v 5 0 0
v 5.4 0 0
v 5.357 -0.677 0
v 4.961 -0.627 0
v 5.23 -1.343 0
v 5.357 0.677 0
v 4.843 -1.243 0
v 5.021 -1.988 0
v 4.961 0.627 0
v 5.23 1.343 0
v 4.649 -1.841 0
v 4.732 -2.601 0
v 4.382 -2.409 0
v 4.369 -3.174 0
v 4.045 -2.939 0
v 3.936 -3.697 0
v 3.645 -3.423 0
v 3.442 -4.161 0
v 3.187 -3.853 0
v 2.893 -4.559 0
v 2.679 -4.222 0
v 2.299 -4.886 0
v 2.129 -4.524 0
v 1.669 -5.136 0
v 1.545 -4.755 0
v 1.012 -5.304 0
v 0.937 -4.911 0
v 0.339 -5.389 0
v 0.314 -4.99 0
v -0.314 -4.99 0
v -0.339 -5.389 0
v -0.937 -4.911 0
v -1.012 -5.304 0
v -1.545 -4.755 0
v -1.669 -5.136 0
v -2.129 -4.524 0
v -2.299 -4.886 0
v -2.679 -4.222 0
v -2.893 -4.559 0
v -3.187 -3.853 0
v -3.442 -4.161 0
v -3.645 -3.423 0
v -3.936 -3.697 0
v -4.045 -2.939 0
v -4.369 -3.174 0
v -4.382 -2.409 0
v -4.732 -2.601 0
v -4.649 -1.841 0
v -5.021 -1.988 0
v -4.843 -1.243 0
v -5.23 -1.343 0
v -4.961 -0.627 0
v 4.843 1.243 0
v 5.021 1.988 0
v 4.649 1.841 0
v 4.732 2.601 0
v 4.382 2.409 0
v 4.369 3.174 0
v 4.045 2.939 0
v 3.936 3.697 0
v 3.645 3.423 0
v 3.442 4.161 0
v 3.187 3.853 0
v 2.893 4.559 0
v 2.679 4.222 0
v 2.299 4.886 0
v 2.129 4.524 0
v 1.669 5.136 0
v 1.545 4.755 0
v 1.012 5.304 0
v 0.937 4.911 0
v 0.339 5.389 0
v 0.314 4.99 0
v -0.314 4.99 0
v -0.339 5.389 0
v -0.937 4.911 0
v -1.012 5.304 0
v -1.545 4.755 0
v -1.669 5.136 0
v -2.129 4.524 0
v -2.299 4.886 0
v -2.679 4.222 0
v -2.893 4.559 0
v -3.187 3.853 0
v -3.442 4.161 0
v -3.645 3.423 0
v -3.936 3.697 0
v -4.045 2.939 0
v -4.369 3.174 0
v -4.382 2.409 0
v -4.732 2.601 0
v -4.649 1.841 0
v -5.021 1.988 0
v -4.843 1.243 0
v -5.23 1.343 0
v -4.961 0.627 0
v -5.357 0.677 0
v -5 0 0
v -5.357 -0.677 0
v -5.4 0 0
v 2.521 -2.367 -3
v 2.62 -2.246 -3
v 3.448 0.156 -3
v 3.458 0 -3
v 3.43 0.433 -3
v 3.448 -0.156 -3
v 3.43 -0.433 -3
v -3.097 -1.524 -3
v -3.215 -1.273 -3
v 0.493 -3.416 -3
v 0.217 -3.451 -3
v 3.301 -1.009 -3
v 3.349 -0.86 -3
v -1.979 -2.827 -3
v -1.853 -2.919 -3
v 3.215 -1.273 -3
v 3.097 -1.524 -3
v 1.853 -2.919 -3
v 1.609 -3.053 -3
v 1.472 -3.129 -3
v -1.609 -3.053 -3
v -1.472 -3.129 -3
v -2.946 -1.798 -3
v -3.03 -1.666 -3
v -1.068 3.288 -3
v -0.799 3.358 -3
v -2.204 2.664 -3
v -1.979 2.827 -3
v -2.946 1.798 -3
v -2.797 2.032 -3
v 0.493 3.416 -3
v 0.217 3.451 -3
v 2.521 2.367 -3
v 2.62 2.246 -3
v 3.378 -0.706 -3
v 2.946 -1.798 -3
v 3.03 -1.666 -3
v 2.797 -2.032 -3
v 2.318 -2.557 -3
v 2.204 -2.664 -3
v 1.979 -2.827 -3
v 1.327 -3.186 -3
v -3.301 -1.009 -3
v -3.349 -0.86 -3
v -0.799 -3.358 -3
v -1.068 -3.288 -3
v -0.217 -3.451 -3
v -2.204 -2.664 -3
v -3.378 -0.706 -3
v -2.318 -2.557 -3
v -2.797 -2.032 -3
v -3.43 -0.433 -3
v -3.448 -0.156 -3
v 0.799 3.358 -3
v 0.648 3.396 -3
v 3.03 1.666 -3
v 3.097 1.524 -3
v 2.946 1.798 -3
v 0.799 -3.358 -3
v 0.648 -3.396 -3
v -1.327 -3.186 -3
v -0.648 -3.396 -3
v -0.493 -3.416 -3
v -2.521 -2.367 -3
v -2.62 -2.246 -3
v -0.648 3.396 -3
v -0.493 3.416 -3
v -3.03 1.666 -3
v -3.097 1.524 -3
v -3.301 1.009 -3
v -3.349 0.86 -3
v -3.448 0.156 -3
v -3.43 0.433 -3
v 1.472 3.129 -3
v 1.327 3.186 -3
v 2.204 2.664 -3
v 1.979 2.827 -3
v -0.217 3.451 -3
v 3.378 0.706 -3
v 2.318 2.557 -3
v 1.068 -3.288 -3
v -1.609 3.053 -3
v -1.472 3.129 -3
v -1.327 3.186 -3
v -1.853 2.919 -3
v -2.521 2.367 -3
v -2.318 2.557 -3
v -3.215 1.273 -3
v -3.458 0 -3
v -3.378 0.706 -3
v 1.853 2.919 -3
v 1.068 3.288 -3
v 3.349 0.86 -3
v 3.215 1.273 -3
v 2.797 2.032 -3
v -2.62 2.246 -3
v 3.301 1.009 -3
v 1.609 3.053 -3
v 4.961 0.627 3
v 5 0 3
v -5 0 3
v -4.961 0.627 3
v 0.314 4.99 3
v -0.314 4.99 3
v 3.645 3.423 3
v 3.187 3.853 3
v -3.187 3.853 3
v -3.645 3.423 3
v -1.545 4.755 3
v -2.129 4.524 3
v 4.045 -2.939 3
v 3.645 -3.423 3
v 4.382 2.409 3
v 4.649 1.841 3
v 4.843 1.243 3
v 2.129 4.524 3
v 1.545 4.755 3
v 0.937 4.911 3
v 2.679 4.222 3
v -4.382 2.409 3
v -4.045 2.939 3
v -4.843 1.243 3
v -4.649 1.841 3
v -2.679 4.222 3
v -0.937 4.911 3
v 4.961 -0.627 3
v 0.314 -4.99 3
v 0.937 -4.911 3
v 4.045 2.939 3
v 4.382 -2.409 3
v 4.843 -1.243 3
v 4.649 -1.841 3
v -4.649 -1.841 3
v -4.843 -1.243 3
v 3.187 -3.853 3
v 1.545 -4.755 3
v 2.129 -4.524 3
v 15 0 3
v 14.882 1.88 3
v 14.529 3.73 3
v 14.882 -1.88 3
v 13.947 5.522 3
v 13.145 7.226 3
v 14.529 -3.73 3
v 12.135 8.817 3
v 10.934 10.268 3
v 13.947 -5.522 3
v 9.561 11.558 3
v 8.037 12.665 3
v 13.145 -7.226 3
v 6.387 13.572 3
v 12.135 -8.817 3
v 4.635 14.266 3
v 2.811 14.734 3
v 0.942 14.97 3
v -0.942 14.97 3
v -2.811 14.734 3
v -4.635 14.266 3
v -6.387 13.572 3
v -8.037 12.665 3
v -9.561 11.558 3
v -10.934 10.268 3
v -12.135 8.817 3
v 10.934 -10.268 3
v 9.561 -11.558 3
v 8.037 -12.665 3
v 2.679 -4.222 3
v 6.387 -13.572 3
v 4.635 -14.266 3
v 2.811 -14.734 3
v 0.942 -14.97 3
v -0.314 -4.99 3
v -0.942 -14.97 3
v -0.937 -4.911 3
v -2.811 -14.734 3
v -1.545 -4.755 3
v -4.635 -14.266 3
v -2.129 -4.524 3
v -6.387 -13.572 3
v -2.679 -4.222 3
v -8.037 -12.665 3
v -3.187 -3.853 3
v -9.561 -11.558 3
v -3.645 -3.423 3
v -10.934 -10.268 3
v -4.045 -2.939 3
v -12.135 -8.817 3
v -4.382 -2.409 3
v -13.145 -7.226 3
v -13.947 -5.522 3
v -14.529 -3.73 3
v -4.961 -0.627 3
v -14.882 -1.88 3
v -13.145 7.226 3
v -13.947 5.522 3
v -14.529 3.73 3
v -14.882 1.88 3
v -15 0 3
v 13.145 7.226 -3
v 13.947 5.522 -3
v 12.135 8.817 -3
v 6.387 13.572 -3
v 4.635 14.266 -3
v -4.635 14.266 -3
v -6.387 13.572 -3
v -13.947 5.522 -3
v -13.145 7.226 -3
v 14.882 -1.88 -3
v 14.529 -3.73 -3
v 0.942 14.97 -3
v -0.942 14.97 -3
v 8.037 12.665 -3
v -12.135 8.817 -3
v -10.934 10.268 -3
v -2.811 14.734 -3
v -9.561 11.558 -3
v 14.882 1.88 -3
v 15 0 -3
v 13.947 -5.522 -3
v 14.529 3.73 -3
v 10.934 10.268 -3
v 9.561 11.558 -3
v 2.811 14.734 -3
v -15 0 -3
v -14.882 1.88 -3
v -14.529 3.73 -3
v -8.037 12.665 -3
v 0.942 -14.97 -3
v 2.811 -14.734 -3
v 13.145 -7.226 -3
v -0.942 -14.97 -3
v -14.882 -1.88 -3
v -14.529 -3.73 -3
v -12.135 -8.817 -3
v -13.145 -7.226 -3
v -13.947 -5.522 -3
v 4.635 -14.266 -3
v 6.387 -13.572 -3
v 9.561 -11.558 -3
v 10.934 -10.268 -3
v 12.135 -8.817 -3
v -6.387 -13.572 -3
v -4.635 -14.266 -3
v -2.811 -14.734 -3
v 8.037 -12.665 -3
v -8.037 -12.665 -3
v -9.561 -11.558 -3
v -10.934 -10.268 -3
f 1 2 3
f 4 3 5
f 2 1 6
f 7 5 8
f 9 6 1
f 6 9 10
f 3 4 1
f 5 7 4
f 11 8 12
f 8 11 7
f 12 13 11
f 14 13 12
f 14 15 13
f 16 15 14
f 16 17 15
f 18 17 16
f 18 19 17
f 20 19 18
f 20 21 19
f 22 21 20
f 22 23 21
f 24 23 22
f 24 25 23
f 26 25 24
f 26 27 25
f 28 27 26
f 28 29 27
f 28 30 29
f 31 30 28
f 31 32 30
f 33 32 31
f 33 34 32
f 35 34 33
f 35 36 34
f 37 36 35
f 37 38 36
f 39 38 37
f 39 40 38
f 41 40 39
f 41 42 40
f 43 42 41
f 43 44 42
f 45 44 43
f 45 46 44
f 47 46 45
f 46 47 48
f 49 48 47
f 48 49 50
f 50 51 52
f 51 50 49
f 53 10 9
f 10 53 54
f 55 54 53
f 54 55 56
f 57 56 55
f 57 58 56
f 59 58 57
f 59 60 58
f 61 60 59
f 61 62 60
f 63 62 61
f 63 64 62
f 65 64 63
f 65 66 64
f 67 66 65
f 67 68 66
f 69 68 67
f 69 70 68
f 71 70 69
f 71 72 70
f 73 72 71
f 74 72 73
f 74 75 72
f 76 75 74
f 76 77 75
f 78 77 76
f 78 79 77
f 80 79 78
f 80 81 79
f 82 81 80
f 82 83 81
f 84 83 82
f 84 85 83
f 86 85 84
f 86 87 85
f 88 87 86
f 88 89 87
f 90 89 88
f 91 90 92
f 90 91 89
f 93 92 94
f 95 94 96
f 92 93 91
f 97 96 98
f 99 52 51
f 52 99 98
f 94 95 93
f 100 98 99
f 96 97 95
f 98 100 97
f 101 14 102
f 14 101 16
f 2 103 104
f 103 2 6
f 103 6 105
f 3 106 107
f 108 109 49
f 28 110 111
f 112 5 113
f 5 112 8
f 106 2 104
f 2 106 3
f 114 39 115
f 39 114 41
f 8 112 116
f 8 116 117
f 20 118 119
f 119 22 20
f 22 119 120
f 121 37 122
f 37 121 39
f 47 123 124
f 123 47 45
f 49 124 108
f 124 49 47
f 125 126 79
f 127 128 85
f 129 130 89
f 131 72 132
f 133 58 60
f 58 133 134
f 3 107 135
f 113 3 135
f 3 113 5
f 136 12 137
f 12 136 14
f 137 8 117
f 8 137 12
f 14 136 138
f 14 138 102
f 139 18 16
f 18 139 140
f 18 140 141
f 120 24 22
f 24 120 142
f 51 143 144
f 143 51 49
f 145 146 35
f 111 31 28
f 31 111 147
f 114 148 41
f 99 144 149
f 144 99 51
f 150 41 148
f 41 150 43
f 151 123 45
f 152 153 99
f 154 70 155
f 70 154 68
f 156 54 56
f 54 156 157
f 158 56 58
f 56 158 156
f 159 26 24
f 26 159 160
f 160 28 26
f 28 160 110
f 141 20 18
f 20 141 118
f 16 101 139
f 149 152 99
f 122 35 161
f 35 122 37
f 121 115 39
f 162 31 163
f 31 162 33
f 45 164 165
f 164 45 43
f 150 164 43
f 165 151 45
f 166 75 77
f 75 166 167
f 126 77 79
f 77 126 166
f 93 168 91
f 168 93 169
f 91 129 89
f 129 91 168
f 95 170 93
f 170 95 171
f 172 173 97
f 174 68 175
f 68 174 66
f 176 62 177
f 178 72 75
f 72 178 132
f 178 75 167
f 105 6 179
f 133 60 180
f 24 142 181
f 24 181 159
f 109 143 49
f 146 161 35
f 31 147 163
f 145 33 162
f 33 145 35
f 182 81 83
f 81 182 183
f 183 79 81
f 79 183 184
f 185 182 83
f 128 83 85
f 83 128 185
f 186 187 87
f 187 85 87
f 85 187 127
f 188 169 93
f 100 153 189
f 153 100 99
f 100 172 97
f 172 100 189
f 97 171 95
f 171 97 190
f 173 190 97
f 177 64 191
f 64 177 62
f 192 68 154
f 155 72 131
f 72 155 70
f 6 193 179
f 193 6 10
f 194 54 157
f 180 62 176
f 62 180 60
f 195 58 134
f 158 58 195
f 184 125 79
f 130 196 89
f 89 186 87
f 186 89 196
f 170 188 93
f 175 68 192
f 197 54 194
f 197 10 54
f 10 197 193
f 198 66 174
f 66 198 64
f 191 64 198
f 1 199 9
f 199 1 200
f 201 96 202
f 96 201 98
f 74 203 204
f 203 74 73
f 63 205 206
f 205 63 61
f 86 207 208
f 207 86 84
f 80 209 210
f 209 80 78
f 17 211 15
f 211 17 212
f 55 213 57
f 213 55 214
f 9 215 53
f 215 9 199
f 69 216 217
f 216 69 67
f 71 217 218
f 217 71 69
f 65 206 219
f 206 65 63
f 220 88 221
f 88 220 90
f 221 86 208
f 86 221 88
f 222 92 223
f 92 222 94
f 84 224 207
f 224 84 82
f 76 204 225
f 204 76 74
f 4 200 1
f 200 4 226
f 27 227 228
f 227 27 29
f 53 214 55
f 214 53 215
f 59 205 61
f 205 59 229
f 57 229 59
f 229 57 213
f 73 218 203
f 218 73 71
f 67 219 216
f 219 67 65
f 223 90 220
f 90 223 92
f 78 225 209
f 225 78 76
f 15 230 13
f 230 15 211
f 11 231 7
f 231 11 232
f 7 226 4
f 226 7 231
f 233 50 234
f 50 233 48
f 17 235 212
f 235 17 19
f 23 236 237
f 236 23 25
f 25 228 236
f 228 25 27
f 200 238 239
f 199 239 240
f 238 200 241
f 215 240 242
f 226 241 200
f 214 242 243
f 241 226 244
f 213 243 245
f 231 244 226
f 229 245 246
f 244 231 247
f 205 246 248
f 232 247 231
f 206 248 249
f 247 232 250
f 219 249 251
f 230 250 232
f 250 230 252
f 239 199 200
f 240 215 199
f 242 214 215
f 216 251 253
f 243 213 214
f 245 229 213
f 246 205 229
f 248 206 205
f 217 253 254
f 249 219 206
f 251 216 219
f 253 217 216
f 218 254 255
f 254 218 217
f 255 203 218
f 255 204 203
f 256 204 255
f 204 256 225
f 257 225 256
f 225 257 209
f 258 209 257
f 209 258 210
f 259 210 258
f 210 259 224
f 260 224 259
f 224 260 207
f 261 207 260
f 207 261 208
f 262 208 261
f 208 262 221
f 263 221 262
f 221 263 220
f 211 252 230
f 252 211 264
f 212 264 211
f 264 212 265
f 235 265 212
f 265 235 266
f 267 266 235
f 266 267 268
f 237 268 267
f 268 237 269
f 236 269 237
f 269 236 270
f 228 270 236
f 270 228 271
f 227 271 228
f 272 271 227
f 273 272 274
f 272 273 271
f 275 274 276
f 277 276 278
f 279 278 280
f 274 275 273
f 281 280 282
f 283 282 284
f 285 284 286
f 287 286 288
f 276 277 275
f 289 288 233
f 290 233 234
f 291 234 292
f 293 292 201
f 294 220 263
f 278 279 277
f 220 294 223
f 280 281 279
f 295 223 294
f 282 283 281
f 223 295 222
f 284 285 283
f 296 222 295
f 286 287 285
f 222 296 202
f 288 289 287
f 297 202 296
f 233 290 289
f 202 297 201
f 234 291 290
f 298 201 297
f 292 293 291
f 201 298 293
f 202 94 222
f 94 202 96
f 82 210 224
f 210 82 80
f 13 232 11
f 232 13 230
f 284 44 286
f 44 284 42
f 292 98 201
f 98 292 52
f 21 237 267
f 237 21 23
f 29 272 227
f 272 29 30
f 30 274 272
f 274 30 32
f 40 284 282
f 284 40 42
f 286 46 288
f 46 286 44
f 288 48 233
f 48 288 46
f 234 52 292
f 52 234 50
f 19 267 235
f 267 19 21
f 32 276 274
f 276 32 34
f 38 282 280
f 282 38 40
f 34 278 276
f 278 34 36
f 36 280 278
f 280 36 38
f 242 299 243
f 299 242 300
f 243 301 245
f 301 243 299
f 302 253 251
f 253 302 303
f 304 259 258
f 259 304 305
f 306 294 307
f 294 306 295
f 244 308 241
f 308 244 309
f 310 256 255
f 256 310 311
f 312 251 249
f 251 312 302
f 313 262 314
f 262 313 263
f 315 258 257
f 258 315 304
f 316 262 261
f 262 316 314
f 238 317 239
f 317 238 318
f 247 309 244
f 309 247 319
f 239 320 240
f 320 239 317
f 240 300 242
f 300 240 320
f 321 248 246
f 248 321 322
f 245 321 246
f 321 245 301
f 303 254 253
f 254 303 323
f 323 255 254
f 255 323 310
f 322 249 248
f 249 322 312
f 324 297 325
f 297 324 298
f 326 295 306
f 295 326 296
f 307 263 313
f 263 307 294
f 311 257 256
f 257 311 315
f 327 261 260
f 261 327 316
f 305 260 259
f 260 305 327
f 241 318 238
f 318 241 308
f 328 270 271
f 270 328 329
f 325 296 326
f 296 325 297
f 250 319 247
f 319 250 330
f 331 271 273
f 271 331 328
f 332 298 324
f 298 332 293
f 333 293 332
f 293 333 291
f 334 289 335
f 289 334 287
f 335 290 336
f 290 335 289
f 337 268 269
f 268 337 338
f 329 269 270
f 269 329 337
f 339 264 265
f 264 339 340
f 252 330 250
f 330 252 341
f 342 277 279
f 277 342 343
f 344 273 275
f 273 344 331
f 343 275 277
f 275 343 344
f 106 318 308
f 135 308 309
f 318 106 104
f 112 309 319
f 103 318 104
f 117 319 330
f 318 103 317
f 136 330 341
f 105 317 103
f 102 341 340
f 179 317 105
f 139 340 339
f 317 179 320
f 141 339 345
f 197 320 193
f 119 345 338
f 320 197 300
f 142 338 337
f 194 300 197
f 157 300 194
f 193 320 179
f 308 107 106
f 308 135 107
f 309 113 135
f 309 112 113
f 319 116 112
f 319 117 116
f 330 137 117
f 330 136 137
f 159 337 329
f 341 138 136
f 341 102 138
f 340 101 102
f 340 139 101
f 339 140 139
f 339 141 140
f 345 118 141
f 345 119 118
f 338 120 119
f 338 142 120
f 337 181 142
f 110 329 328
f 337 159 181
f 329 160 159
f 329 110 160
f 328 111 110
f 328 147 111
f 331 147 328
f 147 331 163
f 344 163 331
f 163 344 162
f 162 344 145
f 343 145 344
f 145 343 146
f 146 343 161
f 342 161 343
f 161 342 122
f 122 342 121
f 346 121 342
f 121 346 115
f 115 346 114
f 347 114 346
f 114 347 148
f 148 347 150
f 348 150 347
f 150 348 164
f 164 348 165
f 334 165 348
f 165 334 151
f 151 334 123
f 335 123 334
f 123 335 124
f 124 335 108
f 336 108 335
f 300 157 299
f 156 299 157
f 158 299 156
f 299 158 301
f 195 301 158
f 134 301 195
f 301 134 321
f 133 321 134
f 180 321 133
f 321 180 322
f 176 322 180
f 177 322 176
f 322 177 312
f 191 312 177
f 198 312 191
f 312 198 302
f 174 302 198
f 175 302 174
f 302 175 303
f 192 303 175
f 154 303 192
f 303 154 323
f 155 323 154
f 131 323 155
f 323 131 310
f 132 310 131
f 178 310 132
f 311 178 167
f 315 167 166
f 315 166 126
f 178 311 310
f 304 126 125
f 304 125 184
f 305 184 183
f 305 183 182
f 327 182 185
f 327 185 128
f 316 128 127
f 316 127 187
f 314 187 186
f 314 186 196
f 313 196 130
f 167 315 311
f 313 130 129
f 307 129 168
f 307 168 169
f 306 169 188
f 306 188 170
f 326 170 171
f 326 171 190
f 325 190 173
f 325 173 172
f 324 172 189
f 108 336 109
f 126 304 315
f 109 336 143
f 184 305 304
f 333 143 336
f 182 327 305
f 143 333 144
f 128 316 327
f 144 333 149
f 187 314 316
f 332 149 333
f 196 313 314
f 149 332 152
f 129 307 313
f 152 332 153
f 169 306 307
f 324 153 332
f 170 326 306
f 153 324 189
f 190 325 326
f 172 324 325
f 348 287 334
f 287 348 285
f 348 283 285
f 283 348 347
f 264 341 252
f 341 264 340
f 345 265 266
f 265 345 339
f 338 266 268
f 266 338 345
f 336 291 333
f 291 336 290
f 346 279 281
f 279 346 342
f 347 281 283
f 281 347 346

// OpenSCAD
$fn = 50;

difference() {
	union() {
		translate(v = [0, 0, -3.0]) {
			cylinder(h = 6, r = 15.0);
		}
	}
	union() {
		translate(v = [0, 0, 0]) {
			rotate(a = [0, 0, 0]) {
				difference() {
					union() {
						translate(v = [0, 0, -6.0]) {
							cylinder(h = 6, r = 2.6);
						}
						translate(v = [0, 0, -3.9]) {
							cylinder(h = 3.9, r1 = 2.875, r2 = 5.4);
						}
						translate(v = [0, 0, -6.0]) {
							cylinder(h = 6, r = 2.875);
						}
						translate(v = [0, 0, -6.0]) {
							cylinder(h = 6, r = 2.6);
						}
					}
					union();
				}
			}
		}
		#cylinder(h = 3, r = 5.0);
	}
}
